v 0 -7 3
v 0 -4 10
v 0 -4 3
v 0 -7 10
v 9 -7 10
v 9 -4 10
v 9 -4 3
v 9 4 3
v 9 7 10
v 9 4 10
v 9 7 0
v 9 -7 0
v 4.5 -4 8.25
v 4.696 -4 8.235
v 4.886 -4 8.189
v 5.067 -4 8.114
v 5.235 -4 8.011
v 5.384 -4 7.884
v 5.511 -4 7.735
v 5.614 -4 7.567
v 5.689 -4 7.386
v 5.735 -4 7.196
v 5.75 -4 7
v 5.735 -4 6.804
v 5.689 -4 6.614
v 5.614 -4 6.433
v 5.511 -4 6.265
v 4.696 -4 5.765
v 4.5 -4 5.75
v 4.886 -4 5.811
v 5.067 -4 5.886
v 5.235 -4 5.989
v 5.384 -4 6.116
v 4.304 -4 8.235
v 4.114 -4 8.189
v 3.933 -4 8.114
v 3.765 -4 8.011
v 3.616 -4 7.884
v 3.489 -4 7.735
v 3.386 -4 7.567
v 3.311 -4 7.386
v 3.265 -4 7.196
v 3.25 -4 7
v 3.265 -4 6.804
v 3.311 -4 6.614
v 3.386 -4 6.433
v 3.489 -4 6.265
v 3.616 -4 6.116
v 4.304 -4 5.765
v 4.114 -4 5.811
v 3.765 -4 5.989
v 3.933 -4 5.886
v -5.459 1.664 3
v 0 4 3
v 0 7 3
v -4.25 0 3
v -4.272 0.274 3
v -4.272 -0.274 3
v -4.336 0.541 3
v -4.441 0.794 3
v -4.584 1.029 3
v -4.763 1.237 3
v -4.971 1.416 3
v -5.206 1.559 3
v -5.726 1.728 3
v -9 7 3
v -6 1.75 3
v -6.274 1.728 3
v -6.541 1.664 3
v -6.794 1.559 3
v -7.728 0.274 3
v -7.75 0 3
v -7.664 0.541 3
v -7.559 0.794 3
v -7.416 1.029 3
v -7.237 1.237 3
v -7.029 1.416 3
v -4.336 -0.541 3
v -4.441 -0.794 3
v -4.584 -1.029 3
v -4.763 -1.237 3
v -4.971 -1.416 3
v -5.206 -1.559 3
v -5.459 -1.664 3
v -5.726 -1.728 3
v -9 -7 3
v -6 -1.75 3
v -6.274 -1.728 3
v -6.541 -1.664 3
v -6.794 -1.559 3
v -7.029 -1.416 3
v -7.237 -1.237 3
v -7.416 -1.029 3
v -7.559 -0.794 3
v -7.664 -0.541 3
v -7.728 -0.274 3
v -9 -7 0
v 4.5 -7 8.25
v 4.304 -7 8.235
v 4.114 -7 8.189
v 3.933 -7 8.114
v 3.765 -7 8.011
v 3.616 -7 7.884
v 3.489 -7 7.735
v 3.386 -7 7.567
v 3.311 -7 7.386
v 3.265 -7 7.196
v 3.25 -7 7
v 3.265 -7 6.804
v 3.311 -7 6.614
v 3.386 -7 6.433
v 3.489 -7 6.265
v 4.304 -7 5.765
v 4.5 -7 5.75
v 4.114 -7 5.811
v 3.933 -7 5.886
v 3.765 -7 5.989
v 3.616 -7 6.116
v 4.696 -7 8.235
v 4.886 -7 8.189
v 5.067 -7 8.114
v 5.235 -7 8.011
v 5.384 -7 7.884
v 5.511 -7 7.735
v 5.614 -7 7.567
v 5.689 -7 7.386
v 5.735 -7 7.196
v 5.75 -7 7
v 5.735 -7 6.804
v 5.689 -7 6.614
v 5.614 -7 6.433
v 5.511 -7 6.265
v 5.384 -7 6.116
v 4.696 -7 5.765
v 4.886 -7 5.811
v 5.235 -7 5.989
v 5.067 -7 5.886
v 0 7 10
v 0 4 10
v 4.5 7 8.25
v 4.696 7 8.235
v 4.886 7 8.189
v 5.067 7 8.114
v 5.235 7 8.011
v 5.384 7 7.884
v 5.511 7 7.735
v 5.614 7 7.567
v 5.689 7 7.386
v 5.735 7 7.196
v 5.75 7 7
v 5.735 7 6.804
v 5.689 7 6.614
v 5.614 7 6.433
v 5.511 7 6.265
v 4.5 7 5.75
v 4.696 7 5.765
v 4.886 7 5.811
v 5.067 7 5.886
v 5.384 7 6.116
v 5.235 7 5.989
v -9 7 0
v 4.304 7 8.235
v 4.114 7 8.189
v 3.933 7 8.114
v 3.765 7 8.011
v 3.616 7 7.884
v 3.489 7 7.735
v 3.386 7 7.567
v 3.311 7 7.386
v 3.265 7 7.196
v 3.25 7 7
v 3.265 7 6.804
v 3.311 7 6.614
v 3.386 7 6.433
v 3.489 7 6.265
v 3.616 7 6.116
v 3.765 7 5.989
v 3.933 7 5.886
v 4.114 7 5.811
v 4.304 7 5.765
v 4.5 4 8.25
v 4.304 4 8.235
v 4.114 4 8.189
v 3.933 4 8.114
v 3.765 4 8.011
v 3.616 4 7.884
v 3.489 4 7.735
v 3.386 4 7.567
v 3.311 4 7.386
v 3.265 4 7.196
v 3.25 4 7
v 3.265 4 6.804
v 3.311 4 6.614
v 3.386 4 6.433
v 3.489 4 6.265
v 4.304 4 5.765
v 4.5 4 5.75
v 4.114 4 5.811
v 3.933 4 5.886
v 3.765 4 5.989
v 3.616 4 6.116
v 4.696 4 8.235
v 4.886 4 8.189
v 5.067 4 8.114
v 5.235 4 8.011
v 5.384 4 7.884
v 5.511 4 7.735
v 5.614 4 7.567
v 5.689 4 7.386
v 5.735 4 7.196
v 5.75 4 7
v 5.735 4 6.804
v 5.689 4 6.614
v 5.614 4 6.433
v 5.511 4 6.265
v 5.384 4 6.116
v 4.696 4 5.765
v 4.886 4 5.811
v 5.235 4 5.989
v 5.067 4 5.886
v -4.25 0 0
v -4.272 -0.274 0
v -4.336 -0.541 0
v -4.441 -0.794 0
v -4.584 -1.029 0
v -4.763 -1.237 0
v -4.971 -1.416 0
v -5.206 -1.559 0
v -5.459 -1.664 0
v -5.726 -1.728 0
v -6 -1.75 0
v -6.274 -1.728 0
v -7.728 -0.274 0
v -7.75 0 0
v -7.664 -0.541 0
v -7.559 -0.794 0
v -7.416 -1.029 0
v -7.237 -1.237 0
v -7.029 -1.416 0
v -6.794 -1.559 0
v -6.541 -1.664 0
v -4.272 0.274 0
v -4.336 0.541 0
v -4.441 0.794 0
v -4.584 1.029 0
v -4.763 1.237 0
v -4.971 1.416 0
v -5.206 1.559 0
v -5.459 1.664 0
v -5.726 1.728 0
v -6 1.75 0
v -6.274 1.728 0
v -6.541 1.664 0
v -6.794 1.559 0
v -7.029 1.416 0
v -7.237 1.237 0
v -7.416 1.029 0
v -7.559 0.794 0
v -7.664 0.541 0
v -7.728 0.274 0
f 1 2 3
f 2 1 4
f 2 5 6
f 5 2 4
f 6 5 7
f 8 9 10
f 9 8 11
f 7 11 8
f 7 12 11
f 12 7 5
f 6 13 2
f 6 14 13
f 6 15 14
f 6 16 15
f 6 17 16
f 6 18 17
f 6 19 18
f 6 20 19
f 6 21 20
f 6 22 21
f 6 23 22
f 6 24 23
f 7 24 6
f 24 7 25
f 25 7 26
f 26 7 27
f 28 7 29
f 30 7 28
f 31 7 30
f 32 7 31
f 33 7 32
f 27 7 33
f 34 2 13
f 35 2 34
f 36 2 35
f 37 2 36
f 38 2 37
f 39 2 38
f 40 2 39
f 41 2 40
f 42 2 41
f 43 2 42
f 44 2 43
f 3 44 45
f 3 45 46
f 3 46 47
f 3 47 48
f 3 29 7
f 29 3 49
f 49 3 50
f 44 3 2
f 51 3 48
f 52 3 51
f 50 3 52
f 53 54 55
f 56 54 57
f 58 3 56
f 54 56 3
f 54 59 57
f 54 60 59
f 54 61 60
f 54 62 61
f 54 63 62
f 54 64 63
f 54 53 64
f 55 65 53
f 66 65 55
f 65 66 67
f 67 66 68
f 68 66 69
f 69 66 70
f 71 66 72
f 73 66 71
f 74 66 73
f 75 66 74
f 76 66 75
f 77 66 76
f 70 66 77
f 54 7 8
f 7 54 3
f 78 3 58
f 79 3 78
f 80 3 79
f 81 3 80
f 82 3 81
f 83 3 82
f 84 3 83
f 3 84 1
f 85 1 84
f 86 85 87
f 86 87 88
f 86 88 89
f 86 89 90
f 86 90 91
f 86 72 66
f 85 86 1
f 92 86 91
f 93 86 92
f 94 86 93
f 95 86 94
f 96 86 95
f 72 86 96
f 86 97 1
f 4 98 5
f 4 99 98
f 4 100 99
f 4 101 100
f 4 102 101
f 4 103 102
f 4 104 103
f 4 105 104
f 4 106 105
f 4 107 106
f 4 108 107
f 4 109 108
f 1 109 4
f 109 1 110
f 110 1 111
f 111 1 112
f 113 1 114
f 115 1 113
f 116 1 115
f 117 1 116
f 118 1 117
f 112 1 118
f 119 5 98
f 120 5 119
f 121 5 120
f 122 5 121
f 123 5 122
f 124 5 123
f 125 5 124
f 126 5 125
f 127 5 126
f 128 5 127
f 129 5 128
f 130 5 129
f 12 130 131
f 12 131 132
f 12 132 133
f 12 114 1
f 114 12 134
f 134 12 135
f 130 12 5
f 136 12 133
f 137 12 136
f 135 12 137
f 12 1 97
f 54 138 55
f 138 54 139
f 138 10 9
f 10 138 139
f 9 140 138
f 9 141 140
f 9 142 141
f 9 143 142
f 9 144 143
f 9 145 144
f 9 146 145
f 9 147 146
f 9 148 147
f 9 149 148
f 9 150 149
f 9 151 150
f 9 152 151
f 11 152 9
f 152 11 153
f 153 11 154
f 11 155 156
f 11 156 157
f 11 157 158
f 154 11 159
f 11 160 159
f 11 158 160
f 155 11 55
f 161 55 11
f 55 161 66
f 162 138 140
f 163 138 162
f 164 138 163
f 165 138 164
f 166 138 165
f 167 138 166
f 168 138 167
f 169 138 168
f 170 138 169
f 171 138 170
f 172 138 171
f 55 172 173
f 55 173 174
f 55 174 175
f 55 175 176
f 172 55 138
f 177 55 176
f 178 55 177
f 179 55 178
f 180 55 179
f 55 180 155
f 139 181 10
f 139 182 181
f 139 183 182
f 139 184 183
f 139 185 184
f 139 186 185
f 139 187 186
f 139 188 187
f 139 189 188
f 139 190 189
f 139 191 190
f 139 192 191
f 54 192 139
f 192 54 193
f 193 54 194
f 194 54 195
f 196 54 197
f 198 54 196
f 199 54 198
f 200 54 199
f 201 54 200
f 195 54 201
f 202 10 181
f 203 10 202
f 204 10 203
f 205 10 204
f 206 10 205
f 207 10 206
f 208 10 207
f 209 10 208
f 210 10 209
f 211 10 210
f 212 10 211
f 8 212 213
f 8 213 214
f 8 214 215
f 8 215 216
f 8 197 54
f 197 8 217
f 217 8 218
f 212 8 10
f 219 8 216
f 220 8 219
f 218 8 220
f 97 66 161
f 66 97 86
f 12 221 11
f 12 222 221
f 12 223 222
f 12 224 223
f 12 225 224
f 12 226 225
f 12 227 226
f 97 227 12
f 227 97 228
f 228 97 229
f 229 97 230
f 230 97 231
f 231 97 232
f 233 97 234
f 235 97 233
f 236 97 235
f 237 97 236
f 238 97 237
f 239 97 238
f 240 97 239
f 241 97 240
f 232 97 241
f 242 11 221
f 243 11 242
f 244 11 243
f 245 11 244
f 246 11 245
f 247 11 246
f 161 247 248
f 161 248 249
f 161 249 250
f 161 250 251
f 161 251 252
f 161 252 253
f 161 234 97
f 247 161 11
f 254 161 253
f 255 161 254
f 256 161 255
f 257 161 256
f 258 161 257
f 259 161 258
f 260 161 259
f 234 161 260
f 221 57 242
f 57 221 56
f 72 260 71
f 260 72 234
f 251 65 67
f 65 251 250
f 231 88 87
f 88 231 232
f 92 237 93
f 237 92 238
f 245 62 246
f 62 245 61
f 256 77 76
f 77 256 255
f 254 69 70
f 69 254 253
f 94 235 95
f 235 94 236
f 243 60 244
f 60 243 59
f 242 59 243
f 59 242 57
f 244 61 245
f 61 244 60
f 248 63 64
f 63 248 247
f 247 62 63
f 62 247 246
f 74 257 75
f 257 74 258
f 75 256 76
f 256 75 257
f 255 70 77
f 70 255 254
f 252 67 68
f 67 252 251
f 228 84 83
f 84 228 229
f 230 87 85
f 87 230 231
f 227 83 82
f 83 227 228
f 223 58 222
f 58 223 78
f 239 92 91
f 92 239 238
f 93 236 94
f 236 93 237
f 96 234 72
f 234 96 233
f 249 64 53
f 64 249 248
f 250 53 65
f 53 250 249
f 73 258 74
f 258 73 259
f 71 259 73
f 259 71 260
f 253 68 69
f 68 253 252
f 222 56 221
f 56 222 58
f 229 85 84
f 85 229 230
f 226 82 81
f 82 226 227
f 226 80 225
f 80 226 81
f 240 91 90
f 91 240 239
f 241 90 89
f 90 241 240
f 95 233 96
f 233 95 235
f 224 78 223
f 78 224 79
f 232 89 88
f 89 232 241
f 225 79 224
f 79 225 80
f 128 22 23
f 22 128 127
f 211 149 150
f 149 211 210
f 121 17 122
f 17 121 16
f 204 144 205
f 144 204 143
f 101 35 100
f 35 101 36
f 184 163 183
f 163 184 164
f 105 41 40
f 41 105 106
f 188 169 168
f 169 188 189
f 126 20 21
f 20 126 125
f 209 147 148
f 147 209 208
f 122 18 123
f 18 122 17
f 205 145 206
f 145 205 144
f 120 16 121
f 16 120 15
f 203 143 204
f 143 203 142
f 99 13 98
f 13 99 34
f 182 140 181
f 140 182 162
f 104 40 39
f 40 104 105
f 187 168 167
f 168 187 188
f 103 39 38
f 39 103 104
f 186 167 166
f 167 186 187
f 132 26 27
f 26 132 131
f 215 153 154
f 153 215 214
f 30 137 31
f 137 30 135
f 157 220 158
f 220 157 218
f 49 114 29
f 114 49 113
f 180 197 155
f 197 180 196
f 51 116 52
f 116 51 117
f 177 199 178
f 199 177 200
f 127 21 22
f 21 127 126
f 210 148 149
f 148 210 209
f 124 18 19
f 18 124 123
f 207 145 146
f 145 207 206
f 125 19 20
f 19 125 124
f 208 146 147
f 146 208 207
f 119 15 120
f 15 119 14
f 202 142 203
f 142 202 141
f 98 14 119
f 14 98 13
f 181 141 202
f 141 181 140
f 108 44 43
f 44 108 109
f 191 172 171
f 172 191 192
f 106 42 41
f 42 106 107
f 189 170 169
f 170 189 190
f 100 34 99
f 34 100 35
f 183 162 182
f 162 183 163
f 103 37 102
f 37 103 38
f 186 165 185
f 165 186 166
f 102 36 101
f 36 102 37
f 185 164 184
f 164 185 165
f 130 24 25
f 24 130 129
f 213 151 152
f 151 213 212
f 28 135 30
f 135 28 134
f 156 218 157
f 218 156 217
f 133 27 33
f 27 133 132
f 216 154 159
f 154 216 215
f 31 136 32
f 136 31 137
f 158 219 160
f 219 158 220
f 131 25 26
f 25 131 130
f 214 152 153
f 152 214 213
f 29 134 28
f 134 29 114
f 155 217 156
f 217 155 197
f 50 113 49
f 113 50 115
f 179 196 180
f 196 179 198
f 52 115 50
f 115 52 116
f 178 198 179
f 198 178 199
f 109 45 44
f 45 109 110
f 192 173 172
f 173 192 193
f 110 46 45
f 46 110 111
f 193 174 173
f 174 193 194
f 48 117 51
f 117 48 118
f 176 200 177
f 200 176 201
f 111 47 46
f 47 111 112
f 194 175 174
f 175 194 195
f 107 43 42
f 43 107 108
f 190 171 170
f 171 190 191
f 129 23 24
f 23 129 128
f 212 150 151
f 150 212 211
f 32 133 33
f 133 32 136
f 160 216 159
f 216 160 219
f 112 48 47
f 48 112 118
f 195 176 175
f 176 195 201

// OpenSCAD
$fn=40;
module cable_guide() {
    difference() {
        union() {
            translate([-9,-7,0]) cube([18,14,3]);
            for(y=[-7,4]) translate([0,y,3]) cube([9,3,7]);
        }
        translate([-6,0,-1]) cylinder(d=3.5,h=5);
        translate([4.5,0,7]) rotate([90,0,0]) cylinder(d=2.5,h=18,center=true);
    }
}
cable_guide();
